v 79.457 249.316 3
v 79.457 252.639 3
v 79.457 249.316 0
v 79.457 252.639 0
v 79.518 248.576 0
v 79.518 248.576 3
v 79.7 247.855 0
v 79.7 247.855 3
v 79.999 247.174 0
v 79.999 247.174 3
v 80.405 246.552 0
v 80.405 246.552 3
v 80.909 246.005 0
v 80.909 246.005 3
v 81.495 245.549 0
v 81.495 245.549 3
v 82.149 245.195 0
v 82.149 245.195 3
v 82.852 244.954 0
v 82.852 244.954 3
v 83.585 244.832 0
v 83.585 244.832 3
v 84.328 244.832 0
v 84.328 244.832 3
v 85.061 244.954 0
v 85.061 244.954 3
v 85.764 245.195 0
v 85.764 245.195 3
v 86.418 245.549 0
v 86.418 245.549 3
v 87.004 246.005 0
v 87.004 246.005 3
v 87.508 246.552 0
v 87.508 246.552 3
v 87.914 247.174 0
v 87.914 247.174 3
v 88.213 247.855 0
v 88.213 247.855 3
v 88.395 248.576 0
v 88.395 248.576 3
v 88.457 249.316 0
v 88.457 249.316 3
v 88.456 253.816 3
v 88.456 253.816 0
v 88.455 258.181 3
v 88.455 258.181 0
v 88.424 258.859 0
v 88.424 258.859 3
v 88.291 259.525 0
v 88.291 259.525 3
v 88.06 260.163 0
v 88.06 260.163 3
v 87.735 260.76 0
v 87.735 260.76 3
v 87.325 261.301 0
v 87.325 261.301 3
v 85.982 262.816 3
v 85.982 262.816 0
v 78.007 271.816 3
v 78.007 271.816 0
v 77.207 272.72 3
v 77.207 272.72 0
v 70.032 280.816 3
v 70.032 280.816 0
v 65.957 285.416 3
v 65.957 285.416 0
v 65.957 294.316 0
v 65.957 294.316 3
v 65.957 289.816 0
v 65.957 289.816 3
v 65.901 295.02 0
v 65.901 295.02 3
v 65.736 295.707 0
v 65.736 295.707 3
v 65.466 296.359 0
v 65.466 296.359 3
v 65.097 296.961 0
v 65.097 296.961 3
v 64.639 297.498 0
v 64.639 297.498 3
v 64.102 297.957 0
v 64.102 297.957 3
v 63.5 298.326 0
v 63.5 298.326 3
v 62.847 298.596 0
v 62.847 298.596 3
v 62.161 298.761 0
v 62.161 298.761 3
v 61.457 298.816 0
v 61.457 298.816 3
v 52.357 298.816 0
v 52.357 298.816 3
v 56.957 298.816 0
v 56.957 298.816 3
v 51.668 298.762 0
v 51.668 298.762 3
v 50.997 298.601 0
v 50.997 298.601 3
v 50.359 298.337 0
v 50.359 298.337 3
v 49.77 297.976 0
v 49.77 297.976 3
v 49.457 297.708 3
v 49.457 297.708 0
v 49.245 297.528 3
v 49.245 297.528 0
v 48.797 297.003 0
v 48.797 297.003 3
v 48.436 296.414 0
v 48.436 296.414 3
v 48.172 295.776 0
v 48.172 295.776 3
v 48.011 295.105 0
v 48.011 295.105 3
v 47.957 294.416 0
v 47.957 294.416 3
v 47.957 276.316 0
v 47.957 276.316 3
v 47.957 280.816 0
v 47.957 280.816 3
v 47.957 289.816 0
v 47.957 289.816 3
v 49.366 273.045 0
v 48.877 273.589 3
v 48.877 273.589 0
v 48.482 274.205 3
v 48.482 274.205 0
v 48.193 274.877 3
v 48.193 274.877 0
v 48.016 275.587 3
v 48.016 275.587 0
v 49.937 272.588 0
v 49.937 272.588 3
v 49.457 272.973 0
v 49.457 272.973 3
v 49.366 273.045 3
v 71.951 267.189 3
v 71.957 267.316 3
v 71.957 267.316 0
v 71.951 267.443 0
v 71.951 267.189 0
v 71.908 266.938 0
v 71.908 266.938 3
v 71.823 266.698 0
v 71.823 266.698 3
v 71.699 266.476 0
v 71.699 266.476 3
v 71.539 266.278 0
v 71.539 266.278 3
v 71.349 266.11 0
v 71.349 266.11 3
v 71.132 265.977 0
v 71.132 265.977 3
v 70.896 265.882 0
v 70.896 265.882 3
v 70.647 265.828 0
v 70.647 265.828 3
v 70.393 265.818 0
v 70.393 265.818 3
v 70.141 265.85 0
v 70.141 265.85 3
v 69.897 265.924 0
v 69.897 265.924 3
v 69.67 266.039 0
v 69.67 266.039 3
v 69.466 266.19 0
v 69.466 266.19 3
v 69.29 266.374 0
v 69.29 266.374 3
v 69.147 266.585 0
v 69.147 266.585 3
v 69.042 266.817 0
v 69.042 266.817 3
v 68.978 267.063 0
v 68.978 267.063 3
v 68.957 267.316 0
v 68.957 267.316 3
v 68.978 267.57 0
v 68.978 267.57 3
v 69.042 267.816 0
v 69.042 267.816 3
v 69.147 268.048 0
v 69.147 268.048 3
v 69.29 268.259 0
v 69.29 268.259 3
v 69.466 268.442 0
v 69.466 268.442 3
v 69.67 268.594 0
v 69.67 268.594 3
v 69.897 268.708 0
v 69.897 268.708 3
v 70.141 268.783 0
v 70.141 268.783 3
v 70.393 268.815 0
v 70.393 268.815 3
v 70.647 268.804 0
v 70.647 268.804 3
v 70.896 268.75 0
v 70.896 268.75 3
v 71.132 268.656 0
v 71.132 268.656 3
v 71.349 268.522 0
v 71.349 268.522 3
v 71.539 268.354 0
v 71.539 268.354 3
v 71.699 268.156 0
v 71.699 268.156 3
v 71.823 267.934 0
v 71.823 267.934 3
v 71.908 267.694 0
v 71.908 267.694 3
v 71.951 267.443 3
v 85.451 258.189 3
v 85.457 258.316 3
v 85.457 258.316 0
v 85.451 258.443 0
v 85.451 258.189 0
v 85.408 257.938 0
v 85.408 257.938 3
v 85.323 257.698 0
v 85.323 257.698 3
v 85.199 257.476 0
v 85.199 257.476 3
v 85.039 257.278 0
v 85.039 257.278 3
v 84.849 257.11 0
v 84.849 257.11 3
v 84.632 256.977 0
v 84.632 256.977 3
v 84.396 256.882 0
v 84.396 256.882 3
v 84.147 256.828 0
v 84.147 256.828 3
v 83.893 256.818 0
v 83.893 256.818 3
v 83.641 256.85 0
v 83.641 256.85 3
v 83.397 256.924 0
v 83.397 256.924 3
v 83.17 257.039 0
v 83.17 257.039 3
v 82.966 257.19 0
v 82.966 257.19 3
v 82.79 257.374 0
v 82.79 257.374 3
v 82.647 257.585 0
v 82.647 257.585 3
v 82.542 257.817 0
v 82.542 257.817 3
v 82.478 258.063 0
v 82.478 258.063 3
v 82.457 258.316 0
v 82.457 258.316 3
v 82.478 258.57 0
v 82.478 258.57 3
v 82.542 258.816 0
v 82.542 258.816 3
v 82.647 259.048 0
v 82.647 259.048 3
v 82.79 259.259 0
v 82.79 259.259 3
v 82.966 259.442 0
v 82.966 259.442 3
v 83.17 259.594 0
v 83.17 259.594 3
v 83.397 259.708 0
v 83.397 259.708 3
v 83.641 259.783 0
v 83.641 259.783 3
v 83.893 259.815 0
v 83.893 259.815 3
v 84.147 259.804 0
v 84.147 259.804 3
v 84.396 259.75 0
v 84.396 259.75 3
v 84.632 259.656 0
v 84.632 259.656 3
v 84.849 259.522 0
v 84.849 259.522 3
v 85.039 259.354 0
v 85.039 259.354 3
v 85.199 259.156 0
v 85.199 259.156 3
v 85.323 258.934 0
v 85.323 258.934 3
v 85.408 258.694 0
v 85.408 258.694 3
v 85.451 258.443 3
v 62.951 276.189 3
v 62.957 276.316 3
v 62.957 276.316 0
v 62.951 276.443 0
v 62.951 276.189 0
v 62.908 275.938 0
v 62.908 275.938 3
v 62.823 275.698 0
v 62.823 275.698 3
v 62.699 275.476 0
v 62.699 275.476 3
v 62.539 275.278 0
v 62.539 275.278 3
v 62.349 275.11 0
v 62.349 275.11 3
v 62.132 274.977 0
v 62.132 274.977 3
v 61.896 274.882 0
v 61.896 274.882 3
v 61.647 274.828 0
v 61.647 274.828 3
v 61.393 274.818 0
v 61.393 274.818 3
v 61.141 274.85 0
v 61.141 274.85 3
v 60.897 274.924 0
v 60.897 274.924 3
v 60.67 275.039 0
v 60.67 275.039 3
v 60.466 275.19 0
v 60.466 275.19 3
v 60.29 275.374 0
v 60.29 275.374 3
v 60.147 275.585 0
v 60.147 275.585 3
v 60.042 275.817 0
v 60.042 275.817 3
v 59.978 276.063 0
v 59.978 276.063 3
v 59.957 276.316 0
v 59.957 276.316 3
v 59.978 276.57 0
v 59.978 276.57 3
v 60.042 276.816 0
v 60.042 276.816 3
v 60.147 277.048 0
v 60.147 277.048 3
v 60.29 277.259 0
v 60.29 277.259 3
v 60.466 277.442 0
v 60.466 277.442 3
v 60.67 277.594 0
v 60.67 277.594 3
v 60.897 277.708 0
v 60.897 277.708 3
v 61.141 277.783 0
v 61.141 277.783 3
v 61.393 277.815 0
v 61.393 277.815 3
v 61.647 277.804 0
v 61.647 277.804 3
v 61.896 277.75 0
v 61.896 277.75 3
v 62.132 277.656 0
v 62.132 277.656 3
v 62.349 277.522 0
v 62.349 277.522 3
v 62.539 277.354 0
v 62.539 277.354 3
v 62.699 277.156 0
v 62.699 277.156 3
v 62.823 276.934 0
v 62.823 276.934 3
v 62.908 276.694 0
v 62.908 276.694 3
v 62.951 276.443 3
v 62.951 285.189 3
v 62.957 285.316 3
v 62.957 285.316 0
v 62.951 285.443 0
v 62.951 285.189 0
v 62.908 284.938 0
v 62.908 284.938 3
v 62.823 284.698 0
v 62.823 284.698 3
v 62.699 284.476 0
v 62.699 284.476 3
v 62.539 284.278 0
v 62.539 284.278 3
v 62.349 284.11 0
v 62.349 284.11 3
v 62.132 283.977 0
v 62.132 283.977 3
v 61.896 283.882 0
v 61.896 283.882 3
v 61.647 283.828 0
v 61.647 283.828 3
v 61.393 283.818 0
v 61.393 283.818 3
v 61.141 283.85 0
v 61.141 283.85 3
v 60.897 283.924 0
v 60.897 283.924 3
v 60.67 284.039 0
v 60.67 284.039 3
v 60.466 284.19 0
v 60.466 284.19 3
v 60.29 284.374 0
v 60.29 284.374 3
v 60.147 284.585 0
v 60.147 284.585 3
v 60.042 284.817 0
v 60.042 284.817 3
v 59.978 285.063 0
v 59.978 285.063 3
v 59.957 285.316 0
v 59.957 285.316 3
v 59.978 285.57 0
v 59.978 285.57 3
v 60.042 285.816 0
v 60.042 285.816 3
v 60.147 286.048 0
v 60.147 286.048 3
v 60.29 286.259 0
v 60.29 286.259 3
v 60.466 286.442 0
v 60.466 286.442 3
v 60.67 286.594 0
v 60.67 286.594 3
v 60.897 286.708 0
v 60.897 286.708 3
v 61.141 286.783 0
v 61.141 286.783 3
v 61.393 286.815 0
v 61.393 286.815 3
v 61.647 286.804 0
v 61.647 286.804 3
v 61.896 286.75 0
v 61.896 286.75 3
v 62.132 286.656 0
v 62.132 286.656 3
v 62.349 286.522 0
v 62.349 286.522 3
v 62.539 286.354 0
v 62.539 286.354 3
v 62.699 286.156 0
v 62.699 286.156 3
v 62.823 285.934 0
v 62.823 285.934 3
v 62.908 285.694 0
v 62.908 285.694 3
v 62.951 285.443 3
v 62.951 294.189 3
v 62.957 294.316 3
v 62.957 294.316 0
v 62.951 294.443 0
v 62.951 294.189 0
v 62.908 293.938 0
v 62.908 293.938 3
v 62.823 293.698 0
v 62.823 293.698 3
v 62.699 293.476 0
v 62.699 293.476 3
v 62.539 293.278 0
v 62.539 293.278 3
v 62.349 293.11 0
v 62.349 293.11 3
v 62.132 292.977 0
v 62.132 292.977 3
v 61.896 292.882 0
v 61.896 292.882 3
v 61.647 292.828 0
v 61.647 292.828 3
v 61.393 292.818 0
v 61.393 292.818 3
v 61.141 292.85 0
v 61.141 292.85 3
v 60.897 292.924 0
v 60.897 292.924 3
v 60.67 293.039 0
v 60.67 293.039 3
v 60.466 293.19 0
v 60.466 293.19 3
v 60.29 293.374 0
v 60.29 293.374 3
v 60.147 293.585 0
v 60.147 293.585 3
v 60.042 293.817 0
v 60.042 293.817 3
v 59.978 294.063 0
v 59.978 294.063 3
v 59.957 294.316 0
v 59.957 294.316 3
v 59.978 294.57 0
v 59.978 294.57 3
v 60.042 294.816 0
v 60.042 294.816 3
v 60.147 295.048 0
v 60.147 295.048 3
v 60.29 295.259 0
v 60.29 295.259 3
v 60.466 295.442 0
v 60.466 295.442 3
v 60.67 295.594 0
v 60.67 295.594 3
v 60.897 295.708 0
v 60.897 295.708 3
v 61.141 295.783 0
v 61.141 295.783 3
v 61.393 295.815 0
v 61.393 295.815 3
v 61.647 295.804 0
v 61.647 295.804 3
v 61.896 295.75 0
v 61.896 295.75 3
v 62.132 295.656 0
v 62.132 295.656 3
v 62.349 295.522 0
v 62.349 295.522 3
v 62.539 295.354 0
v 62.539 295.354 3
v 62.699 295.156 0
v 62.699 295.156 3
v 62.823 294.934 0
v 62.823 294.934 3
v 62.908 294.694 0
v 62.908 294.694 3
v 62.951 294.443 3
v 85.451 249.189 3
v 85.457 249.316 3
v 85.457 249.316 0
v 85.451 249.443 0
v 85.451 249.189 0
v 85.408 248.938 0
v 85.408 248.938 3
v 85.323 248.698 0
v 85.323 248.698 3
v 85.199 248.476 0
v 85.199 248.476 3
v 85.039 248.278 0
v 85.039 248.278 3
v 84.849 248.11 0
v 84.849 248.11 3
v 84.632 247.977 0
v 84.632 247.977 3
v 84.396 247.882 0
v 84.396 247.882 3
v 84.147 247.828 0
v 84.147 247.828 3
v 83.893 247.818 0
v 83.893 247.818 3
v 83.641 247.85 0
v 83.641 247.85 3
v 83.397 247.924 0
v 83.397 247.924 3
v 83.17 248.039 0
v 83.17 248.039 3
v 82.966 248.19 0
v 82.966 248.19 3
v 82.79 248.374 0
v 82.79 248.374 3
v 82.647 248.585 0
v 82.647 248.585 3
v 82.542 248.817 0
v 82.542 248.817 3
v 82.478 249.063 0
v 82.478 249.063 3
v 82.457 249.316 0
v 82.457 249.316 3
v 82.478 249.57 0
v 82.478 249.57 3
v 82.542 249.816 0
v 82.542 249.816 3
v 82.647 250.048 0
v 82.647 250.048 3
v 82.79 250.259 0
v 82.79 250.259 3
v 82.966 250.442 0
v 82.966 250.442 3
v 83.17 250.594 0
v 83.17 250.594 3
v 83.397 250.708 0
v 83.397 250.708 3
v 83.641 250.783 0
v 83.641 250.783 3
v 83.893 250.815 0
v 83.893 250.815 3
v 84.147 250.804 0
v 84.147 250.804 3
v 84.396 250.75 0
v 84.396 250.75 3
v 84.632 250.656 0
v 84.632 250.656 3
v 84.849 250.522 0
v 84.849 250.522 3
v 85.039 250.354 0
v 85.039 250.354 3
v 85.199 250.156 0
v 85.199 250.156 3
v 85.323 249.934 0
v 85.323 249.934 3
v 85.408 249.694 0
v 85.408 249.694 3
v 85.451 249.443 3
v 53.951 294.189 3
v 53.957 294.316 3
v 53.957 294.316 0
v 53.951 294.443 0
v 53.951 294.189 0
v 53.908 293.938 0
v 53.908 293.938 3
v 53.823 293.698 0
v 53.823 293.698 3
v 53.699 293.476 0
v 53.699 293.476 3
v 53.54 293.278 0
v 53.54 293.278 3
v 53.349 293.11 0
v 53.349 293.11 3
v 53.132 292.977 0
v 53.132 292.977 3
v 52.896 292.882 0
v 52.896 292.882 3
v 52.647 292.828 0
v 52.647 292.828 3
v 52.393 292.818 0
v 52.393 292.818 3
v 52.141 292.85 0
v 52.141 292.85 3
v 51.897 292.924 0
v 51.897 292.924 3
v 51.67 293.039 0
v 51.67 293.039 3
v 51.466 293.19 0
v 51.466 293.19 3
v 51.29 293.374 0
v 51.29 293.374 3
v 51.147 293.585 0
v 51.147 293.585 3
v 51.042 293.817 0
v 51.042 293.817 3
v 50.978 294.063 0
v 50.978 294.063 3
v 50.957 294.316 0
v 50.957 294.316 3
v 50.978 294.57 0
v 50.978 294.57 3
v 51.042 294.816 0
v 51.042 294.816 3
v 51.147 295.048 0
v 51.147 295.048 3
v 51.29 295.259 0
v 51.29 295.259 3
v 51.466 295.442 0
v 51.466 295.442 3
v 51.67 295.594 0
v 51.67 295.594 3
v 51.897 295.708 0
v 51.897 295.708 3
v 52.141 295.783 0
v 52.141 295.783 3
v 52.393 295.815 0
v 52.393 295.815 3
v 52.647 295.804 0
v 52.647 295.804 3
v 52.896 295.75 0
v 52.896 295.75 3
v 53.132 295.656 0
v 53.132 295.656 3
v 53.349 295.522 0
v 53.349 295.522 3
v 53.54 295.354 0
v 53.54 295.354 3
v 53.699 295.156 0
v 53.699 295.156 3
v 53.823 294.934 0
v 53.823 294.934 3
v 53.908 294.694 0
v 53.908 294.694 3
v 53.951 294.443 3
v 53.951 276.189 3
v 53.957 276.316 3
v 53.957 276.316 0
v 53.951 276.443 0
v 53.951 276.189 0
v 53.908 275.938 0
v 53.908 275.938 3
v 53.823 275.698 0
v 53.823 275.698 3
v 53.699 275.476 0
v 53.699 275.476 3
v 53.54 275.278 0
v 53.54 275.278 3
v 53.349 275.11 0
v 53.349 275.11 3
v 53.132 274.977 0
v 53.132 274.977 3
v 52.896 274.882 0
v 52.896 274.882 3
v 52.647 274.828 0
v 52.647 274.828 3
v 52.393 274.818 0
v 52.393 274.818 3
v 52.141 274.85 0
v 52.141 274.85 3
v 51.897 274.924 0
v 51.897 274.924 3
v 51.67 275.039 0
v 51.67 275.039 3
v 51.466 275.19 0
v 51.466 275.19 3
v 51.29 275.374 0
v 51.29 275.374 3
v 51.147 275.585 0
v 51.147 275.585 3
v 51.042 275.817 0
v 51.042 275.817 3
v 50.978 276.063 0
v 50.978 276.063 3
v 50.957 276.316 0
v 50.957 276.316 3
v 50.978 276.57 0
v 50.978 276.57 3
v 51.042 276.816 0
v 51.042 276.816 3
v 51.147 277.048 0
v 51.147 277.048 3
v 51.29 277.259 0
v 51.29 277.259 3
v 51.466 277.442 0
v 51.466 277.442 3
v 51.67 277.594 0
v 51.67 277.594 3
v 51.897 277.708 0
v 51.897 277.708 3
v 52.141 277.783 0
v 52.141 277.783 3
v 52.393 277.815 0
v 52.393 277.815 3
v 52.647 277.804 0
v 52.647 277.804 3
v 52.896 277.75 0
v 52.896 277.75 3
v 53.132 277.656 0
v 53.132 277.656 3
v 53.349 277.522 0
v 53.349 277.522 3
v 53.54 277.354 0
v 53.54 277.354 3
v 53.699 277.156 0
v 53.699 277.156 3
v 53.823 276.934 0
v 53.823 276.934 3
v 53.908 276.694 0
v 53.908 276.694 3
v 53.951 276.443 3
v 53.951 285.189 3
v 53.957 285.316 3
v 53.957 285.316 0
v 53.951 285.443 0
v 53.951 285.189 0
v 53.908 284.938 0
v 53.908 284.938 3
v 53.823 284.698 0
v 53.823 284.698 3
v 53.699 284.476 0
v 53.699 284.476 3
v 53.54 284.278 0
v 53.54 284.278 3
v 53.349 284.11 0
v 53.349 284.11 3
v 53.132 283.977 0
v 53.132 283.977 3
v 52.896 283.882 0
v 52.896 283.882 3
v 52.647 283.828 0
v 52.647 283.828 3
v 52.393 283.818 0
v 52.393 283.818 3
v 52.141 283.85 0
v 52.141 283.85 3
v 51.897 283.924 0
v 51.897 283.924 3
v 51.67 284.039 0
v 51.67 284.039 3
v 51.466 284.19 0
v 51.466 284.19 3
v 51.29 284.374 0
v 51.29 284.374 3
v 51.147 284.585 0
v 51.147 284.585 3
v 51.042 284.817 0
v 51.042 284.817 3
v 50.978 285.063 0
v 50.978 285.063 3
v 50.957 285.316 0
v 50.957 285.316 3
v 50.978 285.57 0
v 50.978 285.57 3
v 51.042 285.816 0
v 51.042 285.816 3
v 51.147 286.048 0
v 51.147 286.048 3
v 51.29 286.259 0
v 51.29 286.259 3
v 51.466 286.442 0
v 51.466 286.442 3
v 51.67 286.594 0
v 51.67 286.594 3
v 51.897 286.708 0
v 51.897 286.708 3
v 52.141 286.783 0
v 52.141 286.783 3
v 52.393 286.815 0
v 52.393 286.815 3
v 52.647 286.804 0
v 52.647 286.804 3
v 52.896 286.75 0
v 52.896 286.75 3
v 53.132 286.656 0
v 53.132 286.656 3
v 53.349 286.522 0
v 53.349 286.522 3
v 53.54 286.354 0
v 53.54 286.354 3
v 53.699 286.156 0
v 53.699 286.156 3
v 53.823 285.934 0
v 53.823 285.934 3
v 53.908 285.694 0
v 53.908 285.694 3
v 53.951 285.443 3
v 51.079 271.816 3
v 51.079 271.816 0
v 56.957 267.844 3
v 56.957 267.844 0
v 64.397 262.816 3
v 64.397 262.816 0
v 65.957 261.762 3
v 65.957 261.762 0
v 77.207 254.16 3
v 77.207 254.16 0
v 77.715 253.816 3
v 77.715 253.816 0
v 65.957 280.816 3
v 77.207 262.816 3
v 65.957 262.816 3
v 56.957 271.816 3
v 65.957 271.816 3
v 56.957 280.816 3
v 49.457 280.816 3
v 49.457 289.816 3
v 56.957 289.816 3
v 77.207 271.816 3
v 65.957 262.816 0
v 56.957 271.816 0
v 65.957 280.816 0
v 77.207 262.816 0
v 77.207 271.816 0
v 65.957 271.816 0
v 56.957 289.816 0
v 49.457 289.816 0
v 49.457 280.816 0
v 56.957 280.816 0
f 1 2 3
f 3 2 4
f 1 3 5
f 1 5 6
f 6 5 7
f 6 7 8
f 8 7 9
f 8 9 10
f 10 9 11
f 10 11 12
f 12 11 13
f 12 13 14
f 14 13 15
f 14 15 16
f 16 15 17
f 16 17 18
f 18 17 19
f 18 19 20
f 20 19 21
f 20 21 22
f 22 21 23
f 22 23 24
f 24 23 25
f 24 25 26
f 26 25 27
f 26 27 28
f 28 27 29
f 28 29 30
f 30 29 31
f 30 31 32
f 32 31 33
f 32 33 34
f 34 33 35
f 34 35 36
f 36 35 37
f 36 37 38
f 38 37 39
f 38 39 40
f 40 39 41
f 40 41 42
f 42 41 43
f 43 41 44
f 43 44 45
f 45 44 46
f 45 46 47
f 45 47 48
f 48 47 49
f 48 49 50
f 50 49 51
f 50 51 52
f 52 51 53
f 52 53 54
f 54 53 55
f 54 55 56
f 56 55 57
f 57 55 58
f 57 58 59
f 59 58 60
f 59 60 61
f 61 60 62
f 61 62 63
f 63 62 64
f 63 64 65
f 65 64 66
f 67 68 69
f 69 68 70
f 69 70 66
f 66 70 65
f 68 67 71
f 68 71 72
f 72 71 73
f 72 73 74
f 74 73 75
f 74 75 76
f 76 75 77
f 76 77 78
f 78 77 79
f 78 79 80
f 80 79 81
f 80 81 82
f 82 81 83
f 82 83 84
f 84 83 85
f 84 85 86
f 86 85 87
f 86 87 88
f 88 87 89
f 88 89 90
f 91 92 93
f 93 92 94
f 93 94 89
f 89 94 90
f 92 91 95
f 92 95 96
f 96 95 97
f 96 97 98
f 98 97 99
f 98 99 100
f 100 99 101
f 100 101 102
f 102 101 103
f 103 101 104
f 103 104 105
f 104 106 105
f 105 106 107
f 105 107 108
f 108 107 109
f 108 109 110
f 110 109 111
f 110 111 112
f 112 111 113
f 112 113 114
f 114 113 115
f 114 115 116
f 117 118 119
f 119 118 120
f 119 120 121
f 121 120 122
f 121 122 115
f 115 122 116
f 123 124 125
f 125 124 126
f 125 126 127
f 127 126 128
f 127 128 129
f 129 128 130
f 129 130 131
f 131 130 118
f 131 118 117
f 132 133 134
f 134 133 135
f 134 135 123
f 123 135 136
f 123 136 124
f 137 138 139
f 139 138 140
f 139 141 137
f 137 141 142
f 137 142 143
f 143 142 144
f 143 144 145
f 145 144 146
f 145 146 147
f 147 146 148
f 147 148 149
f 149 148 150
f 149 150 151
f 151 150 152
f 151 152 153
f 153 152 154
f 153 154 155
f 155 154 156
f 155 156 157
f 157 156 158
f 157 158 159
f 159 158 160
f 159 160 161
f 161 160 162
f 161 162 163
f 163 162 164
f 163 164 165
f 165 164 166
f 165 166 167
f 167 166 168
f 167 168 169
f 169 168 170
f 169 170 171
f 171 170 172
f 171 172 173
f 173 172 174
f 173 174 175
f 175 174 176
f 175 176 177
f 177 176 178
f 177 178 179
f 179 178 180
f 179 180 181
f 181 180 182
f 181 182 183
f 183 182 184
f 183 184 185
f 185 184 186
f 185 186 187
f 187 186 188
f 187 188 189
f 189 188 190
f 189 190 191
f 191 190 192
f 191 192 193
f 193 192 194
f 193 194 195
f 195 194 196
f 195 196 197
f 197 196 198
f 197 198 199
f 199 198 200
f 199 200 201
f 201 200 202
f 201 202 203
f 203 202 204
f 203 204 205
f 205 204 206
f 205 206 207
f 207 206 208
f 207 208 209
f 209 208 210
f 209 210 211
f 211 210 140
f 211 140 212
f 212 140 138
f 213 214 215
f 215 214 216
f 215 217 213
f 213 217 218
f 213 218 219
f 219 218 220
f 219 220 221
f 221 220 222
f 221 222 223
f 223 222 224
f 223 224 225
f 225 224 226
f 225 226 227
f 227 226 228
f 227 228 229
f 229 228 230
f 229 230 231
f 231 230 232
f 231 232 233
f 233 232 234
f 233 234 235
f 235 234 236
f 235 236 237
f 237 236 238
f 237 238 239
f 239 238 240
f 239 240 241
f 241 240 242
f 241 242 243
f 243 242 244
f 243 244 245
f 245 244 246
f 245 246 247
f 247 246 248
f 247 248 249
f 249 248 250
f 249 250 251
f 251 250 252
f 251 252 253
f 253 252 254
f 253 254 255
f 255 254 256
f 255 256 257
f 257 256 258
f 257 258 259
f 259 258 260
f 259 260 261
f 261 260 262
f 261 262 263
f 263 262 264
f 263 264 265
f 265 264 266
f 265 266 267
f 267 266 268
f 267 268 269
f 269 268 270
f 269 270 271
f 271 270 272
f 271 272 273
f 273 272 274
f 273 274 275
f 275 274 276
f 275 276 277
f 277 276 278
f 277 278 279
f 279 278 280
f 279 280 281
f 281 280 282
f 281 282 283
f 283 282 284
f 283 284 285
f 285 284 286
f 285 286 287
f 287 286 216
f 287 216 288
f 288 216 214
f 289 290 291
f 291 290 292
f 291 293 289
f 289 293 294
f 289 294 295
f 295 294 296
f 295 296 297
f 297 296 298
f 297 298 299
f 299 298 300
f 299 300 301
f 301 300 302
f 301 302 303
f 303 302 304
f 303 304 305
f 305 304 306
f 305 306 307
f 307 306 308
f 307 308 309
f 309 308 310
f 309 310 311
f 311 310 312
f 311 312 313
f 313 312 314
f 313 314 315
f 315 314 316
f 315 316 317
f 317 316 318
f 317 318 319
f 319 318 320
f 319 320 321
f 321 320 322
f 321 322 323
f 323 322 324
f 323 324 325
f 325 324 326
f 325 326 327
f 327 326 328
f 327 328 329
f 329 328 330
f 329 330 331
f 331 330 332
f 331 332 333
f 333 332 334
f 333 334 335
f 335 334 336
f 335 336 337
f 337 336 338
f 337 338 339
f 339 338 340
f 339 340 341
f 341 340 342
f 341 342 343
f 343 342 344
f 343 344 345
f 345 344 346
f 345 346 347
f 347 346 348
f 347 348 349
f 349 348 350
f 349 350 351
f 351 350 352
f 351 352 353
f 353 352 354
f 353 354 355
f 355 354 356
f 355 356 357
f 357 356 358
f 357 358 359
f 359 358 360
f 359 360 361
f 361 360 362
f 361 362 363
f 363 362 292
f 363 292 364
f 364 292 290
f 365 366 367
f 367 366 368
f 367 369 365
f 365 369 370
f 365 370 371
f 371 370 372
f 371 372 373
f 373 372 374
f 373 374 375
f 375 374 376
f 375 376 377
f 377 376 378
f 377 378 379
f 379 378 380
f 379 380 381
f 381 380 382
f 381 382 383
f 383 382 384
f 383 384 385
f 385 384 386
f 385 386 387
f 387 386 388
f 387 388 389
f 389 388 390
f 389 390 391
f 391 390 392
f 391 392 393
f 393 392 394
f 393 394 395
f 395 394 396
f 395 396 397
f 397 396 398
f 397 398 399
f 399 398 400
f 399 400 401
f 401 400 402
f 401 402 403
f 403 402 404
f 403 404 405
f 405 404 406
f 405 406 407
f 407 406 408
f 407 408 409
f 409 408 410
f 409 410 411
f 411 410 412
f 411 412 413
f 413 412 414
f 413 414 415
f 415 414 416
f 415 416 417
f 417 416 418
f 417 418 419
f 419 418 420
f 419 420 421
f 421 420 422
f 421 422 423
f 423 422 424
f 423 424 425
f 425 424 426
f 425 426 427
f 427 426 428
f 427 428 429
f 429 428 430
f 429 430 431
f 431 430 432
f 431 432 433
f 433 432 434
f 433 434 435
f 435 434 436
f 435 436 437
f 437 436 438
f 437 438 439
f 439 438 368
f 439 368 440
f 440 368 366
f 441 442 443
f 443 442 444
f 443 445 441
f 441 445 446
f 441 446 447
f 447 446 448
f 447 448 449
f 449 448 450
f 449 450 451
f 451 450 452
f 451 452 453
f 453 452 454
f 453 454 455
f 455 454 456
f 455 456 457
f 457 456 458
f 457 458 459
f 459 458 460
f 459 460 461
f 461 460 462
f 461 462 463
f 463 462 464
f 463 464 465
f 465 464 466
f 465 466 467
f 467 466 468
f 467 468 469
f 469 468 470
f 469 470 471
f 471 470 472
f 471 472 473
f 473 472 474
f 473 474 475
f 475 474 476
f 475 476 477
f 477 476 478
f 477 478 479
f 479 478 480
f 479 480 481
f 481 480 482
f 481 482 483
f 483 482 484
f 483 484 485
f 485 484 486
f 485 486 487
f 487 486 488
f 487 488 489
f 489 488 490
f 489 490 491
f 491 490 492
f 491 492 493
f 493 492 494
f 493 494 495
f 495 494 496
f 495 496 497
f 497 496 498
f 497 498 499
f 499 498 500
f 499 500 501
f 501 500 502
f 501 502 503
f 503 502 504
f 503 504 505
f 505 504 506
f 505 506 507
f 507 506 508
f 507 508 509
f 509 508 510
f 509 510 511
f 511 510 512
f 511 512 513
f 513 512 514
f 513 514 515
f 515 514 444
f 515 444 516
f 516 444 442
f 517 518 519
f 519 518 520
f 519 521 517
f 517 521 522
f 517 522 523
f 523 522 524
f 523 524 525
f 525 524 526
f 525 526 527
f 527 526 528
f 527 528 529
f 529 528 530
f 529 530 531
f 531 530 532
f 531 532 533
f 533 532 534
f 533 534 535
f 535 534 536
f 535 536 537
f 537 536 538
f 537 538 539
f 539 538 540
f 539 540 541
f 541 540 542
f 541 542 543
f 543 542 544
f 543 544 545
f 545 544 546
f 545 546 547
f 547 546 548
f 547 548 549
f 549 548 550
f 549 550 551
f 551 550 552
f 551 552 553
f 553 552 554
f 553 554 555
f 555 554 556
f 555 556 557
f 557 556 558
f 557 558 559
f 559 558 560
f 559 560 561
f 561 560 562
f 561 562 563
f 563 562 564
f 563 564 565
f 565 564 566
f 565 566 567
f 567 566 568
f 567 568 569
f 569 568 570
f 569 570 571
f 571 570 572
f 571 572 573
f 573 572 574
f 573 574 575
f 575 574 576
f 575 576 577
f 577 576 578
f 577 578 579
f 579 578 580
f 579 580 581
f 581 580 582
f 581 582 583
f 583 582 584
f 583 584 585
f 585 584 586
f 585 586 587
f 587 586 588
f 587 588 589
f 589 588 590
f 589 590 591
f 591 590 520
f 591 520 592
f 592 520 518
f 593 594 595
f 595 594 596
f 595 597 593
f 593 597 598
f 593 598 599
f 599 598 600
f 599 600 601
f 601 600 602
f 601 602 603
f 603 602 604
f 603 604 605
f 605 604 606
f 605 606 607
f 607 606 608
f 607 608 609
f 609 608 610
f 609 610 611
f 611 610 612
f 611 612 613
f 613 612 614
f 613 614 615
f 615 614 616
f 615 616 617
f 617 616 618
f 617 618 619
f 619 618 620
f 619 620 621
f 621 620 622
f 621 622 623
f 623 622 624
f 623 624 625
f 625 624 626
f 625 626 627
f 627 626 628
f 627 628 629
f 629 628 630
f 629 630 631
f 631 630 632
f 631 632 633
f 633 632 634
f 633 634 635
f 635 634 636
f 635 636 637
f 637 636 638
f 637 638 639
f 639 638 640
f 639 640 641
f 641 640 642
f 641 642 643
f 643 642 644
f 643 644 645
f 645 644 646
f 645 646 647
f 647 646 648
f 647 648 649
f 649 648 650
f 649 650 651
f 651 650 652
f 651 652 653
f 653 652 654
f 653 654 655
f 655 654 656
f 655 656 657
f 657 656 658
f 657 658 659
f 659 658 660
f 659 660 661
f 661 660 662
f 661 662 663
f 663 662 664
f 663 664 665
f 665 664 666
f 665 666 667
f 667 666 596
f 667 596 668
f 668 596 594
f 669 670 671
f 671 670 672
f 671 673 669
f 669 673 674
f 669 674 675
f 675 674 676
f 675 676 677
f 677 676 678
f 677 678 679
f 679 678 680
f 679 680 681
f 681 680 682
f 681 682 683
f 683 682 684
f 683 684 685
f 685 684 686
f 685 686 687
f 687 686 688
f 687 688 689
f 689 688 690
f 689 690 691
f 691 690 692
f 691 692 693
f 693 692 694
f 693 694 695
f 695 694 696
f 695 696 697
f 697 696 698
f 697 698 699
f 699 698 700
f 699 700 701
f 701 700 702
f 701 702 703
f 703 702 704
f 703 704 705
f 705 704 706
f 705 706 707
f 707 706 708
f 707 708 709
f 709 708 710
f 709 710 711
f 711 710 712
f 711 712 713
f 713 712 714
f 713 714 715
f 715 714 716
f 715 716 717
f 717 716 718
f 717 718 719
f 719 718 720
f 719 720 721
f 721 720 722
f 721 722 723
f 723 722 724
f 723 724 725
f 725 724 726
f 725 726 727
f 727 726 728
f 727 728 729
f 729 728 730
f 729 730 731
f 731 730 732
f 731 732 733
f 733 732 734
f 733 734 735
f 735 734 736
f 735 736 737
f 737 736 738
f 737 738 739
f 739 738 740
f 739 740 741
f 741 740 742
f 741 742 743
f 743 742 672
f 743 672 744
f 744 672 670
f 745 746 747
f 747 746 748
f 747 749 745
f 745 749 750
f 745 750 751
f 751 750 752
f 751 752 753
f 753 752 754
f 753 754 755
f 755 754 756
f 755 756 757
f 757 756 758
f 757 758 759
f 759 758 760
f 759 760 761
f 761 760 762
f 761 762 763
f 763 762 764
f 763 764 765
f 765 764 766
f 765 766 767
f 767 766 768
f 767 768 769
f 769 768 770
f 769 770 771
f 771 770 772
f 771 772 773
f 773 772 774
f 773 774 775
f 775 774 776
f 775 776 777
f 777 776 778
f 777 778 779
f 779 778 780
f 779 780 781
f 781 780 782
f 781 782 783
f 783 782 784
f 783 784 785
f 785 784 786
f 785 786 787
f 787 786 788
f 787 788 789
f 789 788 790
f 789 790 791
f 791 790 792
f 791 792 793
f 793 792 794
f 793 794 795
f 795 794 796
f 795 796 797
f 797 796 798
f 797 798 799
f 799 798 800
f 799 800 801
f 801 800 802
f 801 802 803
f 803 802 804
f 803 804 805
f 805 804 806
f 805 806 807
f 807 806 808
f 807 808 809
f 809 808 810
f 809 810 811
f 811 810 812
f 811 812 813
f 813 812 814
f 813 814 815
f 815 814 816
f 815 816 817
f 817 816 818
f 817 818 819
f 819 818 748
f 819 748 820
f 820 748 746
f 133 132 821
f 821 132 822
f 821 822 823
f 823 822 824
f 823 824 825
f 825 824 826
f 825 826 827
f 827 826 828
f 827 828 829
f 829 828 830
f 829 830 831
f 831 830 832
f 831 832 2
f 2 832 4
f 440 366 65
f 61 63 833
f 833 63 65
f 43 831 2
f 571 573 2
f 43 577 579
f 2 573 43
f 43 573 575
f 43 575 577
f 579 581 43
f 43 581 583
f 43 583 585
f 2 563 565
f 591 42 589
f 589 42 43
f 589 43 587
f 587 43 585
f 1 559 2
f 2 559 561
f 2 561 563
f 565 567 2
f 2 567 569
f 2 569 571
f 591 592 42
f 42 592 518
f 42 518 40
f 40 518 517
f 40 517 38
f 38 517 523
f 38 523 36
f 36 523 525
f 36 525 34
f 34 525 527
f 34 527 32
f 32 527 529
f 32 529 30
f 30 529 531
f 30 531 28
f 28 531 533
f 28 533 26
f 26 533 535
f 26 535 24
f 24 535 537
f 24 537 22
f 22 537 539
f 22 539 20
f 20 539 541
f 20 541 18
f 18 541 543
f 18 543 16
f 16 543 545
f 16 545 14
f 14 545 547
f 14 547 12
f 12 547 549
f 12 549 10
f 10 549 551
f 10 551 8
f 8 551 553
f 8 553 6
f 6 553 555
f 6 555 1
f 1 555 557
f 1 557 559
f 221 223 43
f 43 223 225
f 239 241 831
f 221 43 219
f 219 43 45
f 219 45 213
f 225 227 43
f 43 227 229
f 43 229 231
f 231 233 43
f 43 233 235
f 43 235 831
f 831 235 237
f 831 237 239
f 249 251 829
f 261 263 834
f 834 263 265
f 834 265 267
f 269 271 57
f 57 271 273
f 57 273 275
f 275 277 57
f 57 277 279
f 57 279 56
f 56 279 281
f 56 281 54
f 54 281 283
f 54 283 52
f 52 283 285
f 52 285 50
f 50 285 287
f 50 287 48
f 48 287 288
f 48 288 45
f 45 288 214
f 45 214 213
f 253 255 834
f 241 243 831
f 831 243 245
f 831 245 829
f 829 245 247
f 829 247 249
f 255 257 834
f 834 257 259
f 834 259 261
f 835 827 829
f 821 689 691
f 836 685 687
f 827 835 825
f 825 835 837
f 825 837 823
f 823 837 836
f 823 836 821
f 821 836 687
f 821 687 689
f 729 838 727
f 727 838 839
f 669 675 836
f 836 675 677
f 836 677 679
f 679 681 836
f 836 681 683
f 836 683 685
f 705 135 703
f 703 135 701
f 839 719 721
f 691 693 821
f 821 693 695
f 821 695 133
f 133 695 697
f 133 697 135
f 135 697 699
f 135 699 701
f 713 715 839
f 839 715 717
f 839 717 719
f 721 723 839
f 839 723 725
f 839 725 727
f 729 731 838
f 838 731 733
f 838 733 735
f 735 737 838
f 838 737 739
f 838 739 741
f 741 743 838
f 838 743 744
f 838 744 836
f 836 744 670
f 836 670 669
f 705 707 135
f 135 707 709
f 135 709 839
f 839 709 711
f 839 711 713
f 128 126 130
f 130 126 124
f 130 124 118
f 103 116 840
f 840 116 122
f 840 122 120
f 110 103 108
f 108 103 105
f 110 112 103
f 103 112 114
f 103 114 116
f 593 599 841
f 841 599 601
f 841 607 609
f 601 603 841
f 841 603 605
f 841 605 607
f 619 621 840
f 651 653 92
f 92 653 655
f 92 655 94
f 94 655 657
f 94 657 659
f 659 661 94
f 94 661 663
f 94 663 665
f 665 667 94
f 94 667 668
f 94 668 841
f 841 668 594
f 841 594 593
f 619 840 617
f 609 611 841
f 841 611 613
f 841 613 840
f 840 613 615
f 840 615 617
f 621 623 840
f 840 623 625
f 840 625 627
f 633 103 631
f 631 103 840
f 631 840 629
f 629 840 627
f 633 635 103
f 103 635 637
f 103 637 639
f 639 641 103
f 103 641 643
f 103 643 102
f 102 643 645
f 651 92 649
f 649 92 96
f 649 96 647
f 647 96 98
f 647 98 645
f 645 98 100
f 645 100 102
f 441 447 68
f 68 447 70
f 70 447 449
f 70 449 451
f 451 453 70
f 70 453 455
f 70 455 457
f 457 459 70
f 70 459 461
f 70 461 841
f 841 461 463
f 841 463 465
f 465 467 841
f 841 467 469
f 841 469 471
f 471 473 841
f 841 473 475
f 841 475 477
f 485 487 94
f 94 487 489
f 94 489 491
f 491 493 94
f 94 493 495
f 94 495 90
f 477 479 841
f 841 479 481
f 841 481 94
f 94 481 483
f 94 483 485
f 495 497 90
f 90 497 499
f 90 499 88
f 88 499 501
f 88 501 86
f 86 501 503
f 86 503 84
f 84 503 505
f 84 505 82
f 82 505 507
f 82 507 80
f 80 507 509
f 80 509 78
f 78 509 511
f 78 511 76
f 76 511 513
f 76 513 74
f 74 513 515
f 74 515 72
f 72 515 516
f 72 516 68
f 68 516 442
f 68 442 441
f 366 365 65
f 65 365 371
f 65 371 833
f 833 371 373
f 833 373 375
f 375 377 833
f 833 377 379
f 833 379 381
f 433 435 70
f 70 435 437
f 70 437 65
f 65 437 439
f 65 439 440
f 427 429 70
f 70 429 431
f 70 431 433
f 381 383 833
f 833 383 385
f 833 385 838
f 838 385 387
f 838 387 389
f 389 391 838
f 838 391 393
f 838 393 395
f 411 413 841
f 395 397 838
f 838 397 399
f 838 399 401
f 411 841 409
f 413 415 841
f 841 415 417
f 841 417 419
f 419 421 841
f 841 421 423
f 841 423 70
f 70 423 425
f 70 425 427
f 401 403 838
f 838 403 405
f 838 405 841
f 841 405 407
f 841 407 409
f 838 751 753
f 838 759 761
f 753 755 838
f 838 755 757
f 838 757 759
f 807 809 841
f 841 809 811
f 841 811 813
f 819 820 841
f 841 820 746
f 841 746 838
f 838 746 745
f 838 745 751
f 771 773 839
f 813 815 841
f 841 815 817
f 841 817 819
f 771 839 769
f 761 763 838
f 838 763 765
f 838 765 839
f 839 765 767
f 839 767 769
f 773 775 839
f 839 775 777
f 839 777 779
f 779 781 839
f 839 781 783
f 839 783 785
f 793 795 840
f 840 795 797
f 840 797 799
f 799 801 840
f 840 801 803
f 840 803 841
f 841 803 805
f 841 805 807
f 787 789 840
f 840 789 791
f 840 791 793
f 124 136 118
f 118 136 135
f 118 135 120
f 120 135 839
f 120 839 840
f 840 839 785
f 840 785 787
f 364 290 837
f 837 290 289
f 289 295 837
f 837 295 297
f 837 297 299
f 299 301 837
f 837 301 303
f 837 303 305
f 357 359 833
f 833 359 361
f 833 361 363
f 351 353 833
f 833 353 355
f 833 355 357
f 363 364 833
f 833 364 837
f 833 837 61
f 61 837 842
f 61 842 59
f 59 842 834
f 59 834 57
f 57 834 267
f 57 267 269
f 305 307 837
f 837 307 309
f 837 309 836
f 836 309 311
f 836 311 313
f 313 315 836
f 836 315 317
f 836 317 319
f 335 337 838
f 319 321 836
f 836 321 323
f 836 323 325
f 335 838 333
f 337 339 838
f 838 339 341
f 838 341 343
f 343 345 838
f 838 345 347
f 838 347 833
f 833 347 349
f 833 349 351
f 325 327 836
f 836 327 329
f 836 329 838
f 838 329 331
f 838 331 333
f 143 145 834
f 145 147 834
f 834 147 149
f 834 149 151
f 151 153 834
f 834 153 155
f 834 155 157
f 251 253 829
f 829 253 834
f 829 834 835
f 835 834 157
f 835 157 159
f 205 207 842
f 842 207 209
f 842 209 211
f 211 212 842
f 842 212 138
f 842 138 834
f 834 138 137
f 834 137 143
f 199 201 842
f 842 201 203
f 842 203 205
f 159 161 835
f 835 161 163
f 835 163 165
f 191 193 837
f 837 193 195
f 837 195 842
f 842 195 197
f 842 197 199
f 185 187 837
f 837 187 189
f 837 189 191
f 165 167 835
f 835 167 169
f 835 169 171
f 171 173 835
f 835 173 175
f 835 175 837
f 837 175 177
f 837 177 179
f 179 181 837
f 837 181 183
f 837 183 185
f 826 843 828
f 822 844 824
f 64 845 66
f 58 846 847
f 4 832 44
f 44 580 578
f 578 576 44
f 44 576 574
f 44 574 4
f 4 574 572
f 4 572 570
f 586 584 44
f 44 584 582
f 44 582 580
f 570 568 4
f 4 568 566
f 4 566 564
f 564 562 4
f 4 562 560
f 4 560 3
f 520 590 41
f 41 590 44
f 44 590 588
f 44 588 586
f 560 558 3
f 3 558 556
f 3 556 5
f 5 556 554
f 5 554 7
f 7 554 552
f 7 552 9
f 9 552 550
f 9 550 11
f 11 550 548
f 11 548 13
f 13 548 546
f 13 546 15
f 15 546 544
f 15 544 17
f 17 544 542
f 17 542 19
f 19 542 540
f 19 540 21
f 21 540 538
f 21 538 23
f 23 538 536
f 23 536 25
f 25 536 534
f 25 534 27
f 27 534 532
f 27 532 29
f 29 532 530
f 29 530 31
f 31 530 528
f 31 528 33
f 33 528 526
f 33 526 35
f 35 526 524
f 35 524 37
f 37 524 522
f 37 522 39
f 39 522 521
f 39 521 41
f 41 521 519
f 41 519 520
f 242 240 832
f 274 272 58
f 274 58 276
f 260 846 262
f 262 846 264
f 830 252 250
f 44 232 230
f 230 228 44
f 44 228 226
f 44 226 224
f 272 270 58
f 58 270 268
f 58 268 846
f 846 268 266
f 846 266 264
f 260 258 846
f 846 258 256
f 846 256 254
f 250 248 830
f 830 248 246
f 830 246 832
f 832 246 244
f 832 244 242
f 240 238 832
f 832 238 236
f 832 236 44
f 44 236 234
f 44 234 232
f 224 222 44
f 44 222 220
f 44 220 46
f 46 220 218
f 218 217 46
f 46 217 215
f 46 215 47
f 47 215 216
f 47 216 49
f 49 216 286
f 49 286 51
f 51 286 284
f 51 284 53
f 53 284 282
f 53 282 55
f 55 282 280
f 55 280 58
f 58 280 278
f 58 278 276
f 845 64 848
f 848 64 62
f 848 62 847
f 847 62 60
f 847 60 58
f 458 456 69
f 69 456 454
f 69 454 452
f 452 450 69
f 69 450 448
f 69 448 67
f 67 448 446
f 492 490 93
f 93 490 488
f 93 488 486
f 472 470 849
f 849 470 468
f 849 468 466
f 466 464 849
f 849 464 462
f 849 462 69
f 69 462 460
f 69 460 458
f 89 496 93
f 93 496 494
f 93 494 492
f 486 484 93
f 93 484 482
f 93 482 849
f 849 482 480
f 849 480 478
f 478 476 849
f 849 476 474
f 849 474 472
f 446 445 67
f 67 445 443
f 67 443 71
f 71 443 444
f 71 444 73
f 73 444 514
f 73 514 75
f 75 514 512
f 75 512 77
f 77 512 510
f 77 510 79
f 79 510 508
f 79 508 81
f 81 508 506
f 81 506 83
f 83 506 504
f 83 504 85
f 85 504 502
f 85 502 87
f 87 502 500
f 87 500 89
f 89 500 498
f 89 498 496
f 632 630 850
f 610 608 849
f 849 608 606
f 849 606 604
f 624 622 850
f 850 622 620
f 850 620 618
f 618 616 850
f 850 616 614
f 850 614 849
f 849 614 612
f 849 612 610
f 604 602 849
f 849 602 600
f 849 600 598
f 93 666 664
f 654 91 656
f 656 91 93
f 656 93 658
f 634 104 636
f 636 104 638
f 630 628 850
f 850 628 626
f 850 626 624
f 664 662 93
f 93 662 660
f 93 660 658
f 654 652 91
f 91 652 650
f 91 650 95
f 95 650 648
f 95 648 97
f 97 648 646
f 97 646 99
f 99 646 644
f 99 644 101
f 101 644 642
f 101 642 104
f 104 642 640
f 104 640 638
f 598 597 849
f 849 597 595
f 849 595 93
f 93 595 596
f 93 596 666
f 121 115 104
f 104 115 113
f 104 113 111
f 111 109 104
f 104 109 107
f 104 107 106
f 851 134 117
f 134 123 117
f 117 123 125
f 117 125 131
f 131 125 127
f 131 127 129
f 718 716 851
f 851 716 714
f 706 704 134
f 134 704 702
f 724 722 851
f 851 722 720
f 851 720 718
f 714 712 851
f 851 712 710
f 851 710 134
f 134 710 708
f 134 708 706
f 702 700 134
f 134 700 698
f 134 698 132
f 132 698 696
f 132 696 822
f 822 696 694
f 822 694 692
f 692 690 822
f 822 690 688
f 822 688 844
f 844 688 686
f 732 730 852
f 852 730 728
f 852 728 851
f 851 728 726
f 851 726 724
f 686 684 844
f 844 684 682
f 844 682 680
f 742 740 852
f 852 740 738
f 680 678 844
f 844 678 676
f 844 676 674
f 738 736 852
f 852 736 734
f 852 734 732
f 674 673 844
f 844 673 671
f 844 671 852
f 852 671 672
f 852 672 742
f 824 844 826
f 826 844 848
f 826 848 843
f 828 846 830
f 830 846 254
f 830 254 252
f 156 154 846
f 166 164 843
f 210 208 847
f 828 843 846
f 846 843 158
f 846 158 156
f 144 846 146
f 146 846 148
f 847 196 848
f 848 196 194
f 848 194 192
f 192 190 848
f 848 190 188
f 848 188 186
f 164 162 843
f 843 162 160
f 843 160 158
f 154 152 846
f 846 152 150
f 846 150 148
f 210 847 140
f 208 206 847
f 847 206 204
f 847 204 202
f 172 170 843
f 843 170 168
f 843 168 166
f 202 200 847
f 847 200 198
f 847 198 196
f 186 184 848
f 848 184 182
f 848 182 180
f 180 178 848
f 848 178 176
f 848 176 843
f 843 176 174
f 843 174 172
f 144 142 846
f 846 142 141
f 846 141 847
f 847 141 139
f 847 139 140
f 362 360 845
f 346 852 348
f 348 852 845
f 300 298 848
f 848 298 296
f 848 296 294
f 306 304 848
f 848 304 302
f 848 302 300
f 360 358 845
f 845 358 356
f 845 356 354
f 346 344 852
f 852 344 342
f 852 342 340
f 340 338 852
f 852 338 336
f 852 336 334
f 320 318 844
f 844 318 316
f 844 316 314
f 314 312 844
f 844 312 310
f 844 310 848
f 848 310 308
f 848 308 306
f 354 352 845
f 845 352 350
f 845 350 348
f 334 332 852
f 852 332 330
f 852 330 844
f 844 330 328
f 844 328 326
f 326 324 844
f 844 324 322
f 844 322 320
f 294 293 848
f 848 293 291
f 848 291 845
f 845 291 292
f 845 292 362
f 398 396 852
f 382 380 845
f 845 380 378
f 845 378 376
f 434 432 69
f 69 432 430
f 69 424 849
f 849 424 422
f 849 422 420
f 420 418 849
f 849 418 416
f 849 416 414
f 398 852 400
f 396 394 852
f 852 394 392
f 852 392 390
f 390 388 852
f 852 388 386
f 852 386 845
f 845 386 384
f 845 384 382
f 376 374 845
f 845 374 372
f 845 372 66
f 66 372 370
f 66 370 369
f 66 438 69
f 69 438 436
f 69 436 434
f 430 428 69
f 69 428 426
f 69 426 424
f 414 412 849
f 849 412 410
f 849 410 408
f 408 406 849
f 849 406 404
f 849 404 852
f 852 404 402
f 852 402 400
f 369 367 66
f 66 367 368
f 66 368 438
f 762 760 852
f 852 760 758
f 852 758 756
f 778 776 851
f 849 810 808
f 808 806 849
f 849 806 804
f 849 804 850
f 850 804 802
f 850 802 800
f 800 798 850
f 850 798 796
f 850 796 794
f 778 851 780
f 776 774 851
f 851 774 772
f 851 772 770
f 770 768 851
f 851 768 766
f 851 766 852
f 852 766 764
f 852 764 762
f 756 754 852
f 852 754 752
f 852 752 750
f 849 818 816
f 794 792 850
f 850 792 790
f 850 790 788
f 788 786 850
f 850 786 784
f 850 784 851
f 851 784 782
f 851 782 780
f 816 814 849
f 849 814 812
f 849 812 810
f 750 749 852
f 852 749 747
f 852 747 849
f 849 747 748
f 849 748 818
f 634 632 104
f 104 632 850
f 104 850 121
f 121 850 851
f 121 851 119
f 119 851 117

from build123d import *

# Parameters (mm, degrees)
MODEL_R                 = 1.5
SALIENTE_EXTRUIR1_DEPTH = 3


with BuildPart() as part:
    # Model → Saliente-Extruir1 (new body)
    with BuildSketch(Plane.XY):
        with BuildLine():
            Line((47.956564936, 294.416156902), (47.956564936, 276.316156902))
            ThreePointArc((47.956564936, 276.316156902), (48.482384187, 274.205259611), (49.936959325, 272.587673623))
            Line((49.936959325, 272.587673623), (70.456564936, 258.72109315))
            Line((70.456564936, 258.72109315), (79.456564936, 252.639142716))
            Line((79.456564936, 252.639142716), (79.456564936, 249.316156902))
            ThreePointArc((79.456564936, 249.316156902), (83.956564936, 244.816156902), (88.456564936, 249.316156902))
            Line((88.456564936, 249.316156902), (88.456564456, 249.318235809))
            Line((88.456564456, 249.318235809), (88.454517382, 258.180422621))
            ThreePointArc((88.454517382, 258.180422621), (88.187667044, 259.848401972), (87.32462533, 261.300477459))
            Line((87.32462533, 261.300477459), (65.956564936, 285.416156902))
            Line((65.956564936, 285.416156902), (65.956564936, 294.316156902))
            ThreePointArc((65.956564936, 294.316156902), (64.638545451, 297.498137417), (61.456564936, 298.816156902))
            Line((61.456564936, 298.816156902), (52.356564936, 298.816156902))
            ThreePointArc((52.356564936, 298.816156902), (49.245295099, 297.527426739), (47.956564936, 294.416156902))
        make_face()
        with Locations((83.956564936, 249.316156902)):
            Circle(MODEL_R, mode=Mode.SUBTRACT)
        with Locations((70.456564936, 267.316156902)):
            Circle(MODEL_R, mode=Mode.SUBTRACT)
        with Locations((83.956564936, 258.316156902)):
            Circle(MODEL_R, mode=Mode.SUBTRACT)
        with Locations((52.456564936, 276.316156902)):
            Circle(MODEL_R, mode=Mode.SUBTRACT)
        with Locations((61.456564936, 276.316156902)):
            Circle(MODEL_R, mode=Mode.SUBTRACT)
        with Locations((52.456564936, 285.316156902)):
            Circle(MODEL_R, mode=Mode.SUBTRACT)
        with Locations((52.456564936, 294.316156902)):
            Circle(MODEL_R, mode=Mode.SUBTRACT)
        with Locations((61.456564936, 285.316156902)):
            Circle(MODEL_R, mode=Mode.SUBTRACT)
        with Locations((61.456564936, 294.316156902)):
            Circle(MODEL_R, mode=Mode.SUBTRACT)
    extrude(amount=SALIENTE_EXTRUIR1_DEPTH)


solid = part.part
